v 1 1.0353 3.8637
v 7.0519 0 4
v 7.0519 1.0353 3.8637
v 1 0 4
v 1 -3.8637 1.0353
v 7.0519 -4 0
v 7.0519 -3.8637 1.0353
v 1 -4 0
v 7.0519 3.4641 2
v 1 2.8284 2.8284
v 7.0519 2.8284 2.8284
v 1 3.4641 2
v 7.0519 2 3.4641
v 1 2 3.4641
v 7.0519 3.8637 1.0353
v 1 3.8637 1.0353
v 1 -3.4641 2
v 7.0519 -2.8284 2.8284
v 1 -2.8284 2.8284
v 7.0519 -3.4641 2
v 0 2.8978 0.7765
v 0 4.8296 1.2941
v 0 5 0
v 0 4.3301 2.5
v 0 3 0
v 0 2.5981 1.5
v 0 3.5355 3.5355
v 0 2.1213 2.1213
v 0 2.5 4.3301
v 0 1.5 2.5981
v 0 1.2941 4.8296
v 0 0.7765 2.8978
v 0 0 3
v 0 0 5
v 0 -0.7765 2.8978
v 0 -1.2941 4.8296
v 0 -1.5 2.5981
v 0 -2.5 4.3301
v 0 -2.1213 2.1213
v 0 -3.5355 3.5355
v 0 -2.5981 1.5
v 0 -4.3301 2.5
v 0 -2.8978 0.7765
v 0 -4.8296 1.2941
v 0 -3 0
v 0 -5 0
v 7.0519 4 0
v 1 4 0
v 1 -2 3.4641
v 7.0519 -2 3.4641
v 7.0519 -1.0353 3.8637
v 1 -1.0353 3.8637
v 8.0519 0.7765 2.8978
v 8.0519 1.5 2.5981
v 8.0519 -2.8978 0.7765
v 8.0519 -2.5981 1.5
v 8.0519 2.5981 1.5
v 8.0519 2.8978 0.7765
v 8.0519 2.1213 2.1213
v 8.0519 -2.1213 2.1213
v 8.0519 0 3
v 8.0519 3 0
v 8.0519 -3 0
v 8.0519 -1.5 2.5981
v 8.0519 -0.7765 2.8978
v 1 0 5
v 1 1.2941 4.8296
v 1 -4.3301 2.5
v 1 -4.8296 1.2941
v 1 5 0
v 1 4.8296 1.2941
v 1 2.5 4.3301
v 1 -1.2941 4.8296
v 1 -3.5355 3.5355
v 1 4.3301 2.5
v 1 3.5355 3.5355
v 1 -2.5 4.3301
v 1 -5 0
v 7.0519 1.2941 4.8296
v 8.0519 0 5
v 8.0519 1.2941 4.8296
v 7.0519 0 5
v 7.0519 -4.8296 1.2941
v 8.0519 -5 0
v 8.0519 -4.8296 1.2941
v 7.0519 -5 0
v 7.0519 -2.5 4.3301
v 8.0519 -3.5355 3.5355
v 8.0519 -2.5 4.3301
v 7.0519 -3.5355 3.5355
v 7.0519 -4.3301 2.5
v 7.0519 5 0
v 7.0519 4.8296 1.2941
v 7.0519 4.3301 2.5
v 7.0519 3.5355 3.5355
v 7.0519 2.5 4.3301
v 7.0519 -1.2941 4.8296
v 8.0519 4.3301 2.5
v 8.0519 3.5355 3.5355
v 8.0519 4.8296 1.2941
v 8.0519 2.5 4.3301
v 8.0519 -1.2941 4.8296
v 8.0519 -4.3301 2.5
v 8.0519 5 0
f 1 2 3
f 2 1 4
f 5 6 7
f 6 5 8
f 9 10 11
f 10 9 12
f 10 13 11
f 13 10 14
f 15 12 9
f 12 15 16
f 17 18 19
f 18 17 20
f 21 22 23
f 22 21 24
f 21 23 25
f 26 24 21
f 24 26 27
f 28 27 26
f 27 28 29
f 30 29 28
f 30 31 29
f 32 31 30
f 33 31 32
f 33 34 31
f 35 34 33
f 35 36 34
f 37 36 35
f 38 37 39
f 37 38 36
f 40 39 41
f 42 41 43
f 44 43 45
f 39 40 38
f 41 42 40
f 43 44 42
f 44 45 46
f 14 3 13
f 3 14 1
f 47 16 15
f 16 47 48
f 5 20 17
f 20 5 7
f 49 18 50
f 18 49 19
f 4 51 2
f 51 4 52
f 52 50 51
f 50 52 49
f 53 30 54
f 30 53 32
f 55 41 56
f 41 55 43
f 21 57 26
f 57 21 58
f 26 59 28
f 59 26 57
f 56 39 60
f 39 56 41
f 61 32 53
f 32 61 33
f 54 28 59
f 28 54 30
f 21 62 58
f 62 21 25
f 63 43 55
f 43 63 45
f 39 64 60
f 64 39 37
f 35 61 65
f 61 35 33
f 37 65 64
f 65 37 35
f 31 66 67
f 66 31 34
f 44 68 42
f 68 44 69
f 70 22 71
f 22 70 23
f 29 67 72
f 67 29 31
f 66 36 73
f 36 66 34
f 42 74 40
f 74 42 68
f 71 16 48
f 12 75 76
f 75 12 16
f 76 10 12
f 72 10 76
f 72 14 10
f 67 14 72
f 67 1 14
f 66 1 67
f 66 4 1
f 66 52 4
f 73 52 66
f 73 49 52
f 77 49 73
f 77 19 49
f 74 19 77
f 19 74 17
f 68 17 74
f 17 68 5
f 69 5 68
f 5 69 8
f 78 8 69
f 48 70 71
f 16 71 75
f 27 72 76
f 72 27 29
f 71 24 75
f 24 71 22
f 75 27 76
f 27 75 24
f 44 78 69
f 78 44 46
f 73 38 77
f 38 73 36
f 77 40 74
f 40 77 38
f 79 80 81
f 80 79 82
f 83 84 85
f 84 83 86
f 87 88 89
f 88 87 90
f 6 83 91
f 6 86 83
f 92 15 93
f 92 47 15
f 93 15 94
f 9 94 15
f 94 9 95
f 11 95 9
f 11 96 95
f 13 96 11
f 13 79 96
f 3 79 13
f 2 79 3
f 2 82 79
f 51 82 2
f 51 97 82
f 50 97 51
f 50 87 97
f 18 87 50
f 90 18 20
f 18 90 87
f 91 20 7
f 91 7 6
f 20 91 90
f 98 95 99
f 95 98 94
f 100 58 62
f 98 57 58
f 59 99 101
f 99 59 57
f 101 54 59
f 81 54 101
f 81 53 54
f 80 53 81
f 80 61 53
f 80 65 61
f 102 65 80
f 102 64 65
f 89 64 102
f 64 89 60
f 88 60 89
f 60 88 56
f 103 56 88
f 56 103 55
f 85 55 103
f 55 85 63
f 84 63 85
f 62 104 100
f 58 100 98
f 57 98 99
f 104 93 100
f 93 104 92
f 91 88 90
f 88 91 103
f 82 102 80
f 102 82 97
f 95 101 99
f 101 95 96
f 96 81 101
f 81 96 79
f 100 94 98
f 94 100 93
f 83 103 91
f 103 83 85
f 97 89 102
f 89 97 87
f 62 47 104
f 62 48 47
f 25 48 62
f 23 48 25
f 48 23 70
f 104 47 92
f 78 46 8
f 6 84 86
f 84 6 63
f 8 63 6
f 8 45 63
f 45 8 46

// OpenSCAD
// file: ../build_environments.scad
// build_environments.scad: modules to build level sections
//

module pool(diameter=10.0, wall_height=2.0, step_width=3.0, connections=[])
{
    difference() {
        union() {
        difference() {
            cylinder(h=0.5,r1=diameter+step_width,r2=diameter+step_width,$fn=48);
            translate([0,0,-0.1])
                cylinder(h=0.7,r1=diameter,r2=diameter,$fn=48);
        }
        difference() {
            cylinder(h=wall_height,r1=diameter+step_width+1.0,r2=diameter+step_width+1.0,$fn=48);
            translate([0,0,-0.1])
                cylinder(h=wall_height+0.2,r1=diameter+step_width,r2=diameter+step_width,$fn=48);
        }
        }
    
        for (c = connections)
        {
            rotate([0,90,0]) {
                angle = atan2(c[1],c[0]);
                rotate([-angle,0,0]) {
                    cylinder(h=diameter+5.0,r1=c[2],r2=c[2],$fn=48);
                }
            }
        }
    }
}

module straight(length=10.0, width=2.0, dy1=0.0, dy2=0.0, dz=0.0)
{
    dims = [0, 0, 0, 0, 0, (dz/length)];
    matrix = [
        [ 1, dims[0], dims[1], 0 ],
        [ dims[2], 1, dims[4], 0 ],
        [ dims[5], dims[3], 1, 0 ],
        [ 0, 0, 0, 1 ]
    ];
    multmatrix(matrix)
    difference() {
        translate([dy1,0,0])
        union() {
            rotate([0,90,0]) {
                difference() {
                    cylinder(h=(length-dy1-dy2),r1=width+1.0,r2=width+1.0,$fn=24);
                    translate([0,0,-0.1])
                        cylinder(h=(length-dy1-dy2+0.2),r1=width,r2=width,$fn=24);
                }
                difference() {
                    cylinder(h=1.0,r1=width+2.0,r2=width+2.0,$fn=24);
                    translate([0,0,-0.1])
                        cylinder(h=1.2,r1=width,r2=width,$fn=24);
                }
                translate([0,0,(length-dy1-dy2)-1.0]) {
                    difference() {
                        cylinder(h=1.0,r1=width+2.0,r2=width+2.0,$fn=24);
                        translate([0,0,-0.1])
                            cylinder(h=1.2,r1=width,r2=width,$fn=24);
                    }
                }
            }
        }
        translate([0,0,-(2*width+4.0)/2])
            cube([3*length,3*length,2*width+4.0],center=true);
    }
}

module curve(p0=[0,0], center=[0,0], dir=1, angle=0.0, width=2.0)
{
    radius = sqrt((p0[0]-center[0])*(p0[0]-center[0]) + (p0[1]-center[1])*(p0[1]-center[1]));
    if (dir == 0) {
        difference() {
            rotate([0,0,-90])
            difference() {
                rotate_extrude(angle = angle, convexity = 10, $fn=32)
                    translate([radius, 0, 0])
                        circle(r = width+1.0,$fn=24);
                rotate([0,0,-1.0])
                    rotate_extrude(angle = angle+2.0, convexity = 10, $fn=32)
                        translate([radius, 0, 0])
                            circle(r = width,$fn=24);
            }
            translate([0,0,-(2*width+4.0)/2])
                cube([5*radius,5*radius,2*width+4.0],center=true);
        }
    }
    else {
        difference() {
            rotate([0,0,90])
            difference() {
                rotate_extrude(angle = -angle, convexity = 10, $fn=32)
                    translate([radius, 0, 0])
                        circle(r = width+1.0,$fn=24);
                rotate([0,0,1.0])
                    rotate_extrude(angle = -angle-2.0, convexity = 10, $fn=32)
                        translate([radius, 0, 0])
                            circle(r = width,$fn=24);
            }
            translate([0,0,-(2*width+4.0)/2])
                cube([5*radius,5*radius,2*width+4.0],center=true);
        }
    }

}

// test pool
//pool(diameter=12.0000, wall_height=3.0000, step_width=3.0000, connections=[[0.0000,-26.0000,2.0000], [23.6074,0.0000,2.0000]]);

// test straight, slope
//straight(length=26.0000, width=2.0000, dy1=11.8322, dy2=6.7082, dz=0.0000);
//straight(length=29.1549, width=12.0000, dy1=0.0000, dy2=0.0000, dz=-15.0000);

// test curve
//curve(p0=[23.6074, 0.0000], center=[23.6074, 5.0000], dir=0, angle=60.1011, width=2.0000);
//curve(p0=[33.6426, 12.4219], center=[37.9771, 9.9295], dir=1, angle=120.4627, width=2.0000);
// main file
use <../build_environments.scad>;
straight(length=8.0519, width=3.0000, dy1=0.0000, dy2=0.0000, dz=0.0000);
